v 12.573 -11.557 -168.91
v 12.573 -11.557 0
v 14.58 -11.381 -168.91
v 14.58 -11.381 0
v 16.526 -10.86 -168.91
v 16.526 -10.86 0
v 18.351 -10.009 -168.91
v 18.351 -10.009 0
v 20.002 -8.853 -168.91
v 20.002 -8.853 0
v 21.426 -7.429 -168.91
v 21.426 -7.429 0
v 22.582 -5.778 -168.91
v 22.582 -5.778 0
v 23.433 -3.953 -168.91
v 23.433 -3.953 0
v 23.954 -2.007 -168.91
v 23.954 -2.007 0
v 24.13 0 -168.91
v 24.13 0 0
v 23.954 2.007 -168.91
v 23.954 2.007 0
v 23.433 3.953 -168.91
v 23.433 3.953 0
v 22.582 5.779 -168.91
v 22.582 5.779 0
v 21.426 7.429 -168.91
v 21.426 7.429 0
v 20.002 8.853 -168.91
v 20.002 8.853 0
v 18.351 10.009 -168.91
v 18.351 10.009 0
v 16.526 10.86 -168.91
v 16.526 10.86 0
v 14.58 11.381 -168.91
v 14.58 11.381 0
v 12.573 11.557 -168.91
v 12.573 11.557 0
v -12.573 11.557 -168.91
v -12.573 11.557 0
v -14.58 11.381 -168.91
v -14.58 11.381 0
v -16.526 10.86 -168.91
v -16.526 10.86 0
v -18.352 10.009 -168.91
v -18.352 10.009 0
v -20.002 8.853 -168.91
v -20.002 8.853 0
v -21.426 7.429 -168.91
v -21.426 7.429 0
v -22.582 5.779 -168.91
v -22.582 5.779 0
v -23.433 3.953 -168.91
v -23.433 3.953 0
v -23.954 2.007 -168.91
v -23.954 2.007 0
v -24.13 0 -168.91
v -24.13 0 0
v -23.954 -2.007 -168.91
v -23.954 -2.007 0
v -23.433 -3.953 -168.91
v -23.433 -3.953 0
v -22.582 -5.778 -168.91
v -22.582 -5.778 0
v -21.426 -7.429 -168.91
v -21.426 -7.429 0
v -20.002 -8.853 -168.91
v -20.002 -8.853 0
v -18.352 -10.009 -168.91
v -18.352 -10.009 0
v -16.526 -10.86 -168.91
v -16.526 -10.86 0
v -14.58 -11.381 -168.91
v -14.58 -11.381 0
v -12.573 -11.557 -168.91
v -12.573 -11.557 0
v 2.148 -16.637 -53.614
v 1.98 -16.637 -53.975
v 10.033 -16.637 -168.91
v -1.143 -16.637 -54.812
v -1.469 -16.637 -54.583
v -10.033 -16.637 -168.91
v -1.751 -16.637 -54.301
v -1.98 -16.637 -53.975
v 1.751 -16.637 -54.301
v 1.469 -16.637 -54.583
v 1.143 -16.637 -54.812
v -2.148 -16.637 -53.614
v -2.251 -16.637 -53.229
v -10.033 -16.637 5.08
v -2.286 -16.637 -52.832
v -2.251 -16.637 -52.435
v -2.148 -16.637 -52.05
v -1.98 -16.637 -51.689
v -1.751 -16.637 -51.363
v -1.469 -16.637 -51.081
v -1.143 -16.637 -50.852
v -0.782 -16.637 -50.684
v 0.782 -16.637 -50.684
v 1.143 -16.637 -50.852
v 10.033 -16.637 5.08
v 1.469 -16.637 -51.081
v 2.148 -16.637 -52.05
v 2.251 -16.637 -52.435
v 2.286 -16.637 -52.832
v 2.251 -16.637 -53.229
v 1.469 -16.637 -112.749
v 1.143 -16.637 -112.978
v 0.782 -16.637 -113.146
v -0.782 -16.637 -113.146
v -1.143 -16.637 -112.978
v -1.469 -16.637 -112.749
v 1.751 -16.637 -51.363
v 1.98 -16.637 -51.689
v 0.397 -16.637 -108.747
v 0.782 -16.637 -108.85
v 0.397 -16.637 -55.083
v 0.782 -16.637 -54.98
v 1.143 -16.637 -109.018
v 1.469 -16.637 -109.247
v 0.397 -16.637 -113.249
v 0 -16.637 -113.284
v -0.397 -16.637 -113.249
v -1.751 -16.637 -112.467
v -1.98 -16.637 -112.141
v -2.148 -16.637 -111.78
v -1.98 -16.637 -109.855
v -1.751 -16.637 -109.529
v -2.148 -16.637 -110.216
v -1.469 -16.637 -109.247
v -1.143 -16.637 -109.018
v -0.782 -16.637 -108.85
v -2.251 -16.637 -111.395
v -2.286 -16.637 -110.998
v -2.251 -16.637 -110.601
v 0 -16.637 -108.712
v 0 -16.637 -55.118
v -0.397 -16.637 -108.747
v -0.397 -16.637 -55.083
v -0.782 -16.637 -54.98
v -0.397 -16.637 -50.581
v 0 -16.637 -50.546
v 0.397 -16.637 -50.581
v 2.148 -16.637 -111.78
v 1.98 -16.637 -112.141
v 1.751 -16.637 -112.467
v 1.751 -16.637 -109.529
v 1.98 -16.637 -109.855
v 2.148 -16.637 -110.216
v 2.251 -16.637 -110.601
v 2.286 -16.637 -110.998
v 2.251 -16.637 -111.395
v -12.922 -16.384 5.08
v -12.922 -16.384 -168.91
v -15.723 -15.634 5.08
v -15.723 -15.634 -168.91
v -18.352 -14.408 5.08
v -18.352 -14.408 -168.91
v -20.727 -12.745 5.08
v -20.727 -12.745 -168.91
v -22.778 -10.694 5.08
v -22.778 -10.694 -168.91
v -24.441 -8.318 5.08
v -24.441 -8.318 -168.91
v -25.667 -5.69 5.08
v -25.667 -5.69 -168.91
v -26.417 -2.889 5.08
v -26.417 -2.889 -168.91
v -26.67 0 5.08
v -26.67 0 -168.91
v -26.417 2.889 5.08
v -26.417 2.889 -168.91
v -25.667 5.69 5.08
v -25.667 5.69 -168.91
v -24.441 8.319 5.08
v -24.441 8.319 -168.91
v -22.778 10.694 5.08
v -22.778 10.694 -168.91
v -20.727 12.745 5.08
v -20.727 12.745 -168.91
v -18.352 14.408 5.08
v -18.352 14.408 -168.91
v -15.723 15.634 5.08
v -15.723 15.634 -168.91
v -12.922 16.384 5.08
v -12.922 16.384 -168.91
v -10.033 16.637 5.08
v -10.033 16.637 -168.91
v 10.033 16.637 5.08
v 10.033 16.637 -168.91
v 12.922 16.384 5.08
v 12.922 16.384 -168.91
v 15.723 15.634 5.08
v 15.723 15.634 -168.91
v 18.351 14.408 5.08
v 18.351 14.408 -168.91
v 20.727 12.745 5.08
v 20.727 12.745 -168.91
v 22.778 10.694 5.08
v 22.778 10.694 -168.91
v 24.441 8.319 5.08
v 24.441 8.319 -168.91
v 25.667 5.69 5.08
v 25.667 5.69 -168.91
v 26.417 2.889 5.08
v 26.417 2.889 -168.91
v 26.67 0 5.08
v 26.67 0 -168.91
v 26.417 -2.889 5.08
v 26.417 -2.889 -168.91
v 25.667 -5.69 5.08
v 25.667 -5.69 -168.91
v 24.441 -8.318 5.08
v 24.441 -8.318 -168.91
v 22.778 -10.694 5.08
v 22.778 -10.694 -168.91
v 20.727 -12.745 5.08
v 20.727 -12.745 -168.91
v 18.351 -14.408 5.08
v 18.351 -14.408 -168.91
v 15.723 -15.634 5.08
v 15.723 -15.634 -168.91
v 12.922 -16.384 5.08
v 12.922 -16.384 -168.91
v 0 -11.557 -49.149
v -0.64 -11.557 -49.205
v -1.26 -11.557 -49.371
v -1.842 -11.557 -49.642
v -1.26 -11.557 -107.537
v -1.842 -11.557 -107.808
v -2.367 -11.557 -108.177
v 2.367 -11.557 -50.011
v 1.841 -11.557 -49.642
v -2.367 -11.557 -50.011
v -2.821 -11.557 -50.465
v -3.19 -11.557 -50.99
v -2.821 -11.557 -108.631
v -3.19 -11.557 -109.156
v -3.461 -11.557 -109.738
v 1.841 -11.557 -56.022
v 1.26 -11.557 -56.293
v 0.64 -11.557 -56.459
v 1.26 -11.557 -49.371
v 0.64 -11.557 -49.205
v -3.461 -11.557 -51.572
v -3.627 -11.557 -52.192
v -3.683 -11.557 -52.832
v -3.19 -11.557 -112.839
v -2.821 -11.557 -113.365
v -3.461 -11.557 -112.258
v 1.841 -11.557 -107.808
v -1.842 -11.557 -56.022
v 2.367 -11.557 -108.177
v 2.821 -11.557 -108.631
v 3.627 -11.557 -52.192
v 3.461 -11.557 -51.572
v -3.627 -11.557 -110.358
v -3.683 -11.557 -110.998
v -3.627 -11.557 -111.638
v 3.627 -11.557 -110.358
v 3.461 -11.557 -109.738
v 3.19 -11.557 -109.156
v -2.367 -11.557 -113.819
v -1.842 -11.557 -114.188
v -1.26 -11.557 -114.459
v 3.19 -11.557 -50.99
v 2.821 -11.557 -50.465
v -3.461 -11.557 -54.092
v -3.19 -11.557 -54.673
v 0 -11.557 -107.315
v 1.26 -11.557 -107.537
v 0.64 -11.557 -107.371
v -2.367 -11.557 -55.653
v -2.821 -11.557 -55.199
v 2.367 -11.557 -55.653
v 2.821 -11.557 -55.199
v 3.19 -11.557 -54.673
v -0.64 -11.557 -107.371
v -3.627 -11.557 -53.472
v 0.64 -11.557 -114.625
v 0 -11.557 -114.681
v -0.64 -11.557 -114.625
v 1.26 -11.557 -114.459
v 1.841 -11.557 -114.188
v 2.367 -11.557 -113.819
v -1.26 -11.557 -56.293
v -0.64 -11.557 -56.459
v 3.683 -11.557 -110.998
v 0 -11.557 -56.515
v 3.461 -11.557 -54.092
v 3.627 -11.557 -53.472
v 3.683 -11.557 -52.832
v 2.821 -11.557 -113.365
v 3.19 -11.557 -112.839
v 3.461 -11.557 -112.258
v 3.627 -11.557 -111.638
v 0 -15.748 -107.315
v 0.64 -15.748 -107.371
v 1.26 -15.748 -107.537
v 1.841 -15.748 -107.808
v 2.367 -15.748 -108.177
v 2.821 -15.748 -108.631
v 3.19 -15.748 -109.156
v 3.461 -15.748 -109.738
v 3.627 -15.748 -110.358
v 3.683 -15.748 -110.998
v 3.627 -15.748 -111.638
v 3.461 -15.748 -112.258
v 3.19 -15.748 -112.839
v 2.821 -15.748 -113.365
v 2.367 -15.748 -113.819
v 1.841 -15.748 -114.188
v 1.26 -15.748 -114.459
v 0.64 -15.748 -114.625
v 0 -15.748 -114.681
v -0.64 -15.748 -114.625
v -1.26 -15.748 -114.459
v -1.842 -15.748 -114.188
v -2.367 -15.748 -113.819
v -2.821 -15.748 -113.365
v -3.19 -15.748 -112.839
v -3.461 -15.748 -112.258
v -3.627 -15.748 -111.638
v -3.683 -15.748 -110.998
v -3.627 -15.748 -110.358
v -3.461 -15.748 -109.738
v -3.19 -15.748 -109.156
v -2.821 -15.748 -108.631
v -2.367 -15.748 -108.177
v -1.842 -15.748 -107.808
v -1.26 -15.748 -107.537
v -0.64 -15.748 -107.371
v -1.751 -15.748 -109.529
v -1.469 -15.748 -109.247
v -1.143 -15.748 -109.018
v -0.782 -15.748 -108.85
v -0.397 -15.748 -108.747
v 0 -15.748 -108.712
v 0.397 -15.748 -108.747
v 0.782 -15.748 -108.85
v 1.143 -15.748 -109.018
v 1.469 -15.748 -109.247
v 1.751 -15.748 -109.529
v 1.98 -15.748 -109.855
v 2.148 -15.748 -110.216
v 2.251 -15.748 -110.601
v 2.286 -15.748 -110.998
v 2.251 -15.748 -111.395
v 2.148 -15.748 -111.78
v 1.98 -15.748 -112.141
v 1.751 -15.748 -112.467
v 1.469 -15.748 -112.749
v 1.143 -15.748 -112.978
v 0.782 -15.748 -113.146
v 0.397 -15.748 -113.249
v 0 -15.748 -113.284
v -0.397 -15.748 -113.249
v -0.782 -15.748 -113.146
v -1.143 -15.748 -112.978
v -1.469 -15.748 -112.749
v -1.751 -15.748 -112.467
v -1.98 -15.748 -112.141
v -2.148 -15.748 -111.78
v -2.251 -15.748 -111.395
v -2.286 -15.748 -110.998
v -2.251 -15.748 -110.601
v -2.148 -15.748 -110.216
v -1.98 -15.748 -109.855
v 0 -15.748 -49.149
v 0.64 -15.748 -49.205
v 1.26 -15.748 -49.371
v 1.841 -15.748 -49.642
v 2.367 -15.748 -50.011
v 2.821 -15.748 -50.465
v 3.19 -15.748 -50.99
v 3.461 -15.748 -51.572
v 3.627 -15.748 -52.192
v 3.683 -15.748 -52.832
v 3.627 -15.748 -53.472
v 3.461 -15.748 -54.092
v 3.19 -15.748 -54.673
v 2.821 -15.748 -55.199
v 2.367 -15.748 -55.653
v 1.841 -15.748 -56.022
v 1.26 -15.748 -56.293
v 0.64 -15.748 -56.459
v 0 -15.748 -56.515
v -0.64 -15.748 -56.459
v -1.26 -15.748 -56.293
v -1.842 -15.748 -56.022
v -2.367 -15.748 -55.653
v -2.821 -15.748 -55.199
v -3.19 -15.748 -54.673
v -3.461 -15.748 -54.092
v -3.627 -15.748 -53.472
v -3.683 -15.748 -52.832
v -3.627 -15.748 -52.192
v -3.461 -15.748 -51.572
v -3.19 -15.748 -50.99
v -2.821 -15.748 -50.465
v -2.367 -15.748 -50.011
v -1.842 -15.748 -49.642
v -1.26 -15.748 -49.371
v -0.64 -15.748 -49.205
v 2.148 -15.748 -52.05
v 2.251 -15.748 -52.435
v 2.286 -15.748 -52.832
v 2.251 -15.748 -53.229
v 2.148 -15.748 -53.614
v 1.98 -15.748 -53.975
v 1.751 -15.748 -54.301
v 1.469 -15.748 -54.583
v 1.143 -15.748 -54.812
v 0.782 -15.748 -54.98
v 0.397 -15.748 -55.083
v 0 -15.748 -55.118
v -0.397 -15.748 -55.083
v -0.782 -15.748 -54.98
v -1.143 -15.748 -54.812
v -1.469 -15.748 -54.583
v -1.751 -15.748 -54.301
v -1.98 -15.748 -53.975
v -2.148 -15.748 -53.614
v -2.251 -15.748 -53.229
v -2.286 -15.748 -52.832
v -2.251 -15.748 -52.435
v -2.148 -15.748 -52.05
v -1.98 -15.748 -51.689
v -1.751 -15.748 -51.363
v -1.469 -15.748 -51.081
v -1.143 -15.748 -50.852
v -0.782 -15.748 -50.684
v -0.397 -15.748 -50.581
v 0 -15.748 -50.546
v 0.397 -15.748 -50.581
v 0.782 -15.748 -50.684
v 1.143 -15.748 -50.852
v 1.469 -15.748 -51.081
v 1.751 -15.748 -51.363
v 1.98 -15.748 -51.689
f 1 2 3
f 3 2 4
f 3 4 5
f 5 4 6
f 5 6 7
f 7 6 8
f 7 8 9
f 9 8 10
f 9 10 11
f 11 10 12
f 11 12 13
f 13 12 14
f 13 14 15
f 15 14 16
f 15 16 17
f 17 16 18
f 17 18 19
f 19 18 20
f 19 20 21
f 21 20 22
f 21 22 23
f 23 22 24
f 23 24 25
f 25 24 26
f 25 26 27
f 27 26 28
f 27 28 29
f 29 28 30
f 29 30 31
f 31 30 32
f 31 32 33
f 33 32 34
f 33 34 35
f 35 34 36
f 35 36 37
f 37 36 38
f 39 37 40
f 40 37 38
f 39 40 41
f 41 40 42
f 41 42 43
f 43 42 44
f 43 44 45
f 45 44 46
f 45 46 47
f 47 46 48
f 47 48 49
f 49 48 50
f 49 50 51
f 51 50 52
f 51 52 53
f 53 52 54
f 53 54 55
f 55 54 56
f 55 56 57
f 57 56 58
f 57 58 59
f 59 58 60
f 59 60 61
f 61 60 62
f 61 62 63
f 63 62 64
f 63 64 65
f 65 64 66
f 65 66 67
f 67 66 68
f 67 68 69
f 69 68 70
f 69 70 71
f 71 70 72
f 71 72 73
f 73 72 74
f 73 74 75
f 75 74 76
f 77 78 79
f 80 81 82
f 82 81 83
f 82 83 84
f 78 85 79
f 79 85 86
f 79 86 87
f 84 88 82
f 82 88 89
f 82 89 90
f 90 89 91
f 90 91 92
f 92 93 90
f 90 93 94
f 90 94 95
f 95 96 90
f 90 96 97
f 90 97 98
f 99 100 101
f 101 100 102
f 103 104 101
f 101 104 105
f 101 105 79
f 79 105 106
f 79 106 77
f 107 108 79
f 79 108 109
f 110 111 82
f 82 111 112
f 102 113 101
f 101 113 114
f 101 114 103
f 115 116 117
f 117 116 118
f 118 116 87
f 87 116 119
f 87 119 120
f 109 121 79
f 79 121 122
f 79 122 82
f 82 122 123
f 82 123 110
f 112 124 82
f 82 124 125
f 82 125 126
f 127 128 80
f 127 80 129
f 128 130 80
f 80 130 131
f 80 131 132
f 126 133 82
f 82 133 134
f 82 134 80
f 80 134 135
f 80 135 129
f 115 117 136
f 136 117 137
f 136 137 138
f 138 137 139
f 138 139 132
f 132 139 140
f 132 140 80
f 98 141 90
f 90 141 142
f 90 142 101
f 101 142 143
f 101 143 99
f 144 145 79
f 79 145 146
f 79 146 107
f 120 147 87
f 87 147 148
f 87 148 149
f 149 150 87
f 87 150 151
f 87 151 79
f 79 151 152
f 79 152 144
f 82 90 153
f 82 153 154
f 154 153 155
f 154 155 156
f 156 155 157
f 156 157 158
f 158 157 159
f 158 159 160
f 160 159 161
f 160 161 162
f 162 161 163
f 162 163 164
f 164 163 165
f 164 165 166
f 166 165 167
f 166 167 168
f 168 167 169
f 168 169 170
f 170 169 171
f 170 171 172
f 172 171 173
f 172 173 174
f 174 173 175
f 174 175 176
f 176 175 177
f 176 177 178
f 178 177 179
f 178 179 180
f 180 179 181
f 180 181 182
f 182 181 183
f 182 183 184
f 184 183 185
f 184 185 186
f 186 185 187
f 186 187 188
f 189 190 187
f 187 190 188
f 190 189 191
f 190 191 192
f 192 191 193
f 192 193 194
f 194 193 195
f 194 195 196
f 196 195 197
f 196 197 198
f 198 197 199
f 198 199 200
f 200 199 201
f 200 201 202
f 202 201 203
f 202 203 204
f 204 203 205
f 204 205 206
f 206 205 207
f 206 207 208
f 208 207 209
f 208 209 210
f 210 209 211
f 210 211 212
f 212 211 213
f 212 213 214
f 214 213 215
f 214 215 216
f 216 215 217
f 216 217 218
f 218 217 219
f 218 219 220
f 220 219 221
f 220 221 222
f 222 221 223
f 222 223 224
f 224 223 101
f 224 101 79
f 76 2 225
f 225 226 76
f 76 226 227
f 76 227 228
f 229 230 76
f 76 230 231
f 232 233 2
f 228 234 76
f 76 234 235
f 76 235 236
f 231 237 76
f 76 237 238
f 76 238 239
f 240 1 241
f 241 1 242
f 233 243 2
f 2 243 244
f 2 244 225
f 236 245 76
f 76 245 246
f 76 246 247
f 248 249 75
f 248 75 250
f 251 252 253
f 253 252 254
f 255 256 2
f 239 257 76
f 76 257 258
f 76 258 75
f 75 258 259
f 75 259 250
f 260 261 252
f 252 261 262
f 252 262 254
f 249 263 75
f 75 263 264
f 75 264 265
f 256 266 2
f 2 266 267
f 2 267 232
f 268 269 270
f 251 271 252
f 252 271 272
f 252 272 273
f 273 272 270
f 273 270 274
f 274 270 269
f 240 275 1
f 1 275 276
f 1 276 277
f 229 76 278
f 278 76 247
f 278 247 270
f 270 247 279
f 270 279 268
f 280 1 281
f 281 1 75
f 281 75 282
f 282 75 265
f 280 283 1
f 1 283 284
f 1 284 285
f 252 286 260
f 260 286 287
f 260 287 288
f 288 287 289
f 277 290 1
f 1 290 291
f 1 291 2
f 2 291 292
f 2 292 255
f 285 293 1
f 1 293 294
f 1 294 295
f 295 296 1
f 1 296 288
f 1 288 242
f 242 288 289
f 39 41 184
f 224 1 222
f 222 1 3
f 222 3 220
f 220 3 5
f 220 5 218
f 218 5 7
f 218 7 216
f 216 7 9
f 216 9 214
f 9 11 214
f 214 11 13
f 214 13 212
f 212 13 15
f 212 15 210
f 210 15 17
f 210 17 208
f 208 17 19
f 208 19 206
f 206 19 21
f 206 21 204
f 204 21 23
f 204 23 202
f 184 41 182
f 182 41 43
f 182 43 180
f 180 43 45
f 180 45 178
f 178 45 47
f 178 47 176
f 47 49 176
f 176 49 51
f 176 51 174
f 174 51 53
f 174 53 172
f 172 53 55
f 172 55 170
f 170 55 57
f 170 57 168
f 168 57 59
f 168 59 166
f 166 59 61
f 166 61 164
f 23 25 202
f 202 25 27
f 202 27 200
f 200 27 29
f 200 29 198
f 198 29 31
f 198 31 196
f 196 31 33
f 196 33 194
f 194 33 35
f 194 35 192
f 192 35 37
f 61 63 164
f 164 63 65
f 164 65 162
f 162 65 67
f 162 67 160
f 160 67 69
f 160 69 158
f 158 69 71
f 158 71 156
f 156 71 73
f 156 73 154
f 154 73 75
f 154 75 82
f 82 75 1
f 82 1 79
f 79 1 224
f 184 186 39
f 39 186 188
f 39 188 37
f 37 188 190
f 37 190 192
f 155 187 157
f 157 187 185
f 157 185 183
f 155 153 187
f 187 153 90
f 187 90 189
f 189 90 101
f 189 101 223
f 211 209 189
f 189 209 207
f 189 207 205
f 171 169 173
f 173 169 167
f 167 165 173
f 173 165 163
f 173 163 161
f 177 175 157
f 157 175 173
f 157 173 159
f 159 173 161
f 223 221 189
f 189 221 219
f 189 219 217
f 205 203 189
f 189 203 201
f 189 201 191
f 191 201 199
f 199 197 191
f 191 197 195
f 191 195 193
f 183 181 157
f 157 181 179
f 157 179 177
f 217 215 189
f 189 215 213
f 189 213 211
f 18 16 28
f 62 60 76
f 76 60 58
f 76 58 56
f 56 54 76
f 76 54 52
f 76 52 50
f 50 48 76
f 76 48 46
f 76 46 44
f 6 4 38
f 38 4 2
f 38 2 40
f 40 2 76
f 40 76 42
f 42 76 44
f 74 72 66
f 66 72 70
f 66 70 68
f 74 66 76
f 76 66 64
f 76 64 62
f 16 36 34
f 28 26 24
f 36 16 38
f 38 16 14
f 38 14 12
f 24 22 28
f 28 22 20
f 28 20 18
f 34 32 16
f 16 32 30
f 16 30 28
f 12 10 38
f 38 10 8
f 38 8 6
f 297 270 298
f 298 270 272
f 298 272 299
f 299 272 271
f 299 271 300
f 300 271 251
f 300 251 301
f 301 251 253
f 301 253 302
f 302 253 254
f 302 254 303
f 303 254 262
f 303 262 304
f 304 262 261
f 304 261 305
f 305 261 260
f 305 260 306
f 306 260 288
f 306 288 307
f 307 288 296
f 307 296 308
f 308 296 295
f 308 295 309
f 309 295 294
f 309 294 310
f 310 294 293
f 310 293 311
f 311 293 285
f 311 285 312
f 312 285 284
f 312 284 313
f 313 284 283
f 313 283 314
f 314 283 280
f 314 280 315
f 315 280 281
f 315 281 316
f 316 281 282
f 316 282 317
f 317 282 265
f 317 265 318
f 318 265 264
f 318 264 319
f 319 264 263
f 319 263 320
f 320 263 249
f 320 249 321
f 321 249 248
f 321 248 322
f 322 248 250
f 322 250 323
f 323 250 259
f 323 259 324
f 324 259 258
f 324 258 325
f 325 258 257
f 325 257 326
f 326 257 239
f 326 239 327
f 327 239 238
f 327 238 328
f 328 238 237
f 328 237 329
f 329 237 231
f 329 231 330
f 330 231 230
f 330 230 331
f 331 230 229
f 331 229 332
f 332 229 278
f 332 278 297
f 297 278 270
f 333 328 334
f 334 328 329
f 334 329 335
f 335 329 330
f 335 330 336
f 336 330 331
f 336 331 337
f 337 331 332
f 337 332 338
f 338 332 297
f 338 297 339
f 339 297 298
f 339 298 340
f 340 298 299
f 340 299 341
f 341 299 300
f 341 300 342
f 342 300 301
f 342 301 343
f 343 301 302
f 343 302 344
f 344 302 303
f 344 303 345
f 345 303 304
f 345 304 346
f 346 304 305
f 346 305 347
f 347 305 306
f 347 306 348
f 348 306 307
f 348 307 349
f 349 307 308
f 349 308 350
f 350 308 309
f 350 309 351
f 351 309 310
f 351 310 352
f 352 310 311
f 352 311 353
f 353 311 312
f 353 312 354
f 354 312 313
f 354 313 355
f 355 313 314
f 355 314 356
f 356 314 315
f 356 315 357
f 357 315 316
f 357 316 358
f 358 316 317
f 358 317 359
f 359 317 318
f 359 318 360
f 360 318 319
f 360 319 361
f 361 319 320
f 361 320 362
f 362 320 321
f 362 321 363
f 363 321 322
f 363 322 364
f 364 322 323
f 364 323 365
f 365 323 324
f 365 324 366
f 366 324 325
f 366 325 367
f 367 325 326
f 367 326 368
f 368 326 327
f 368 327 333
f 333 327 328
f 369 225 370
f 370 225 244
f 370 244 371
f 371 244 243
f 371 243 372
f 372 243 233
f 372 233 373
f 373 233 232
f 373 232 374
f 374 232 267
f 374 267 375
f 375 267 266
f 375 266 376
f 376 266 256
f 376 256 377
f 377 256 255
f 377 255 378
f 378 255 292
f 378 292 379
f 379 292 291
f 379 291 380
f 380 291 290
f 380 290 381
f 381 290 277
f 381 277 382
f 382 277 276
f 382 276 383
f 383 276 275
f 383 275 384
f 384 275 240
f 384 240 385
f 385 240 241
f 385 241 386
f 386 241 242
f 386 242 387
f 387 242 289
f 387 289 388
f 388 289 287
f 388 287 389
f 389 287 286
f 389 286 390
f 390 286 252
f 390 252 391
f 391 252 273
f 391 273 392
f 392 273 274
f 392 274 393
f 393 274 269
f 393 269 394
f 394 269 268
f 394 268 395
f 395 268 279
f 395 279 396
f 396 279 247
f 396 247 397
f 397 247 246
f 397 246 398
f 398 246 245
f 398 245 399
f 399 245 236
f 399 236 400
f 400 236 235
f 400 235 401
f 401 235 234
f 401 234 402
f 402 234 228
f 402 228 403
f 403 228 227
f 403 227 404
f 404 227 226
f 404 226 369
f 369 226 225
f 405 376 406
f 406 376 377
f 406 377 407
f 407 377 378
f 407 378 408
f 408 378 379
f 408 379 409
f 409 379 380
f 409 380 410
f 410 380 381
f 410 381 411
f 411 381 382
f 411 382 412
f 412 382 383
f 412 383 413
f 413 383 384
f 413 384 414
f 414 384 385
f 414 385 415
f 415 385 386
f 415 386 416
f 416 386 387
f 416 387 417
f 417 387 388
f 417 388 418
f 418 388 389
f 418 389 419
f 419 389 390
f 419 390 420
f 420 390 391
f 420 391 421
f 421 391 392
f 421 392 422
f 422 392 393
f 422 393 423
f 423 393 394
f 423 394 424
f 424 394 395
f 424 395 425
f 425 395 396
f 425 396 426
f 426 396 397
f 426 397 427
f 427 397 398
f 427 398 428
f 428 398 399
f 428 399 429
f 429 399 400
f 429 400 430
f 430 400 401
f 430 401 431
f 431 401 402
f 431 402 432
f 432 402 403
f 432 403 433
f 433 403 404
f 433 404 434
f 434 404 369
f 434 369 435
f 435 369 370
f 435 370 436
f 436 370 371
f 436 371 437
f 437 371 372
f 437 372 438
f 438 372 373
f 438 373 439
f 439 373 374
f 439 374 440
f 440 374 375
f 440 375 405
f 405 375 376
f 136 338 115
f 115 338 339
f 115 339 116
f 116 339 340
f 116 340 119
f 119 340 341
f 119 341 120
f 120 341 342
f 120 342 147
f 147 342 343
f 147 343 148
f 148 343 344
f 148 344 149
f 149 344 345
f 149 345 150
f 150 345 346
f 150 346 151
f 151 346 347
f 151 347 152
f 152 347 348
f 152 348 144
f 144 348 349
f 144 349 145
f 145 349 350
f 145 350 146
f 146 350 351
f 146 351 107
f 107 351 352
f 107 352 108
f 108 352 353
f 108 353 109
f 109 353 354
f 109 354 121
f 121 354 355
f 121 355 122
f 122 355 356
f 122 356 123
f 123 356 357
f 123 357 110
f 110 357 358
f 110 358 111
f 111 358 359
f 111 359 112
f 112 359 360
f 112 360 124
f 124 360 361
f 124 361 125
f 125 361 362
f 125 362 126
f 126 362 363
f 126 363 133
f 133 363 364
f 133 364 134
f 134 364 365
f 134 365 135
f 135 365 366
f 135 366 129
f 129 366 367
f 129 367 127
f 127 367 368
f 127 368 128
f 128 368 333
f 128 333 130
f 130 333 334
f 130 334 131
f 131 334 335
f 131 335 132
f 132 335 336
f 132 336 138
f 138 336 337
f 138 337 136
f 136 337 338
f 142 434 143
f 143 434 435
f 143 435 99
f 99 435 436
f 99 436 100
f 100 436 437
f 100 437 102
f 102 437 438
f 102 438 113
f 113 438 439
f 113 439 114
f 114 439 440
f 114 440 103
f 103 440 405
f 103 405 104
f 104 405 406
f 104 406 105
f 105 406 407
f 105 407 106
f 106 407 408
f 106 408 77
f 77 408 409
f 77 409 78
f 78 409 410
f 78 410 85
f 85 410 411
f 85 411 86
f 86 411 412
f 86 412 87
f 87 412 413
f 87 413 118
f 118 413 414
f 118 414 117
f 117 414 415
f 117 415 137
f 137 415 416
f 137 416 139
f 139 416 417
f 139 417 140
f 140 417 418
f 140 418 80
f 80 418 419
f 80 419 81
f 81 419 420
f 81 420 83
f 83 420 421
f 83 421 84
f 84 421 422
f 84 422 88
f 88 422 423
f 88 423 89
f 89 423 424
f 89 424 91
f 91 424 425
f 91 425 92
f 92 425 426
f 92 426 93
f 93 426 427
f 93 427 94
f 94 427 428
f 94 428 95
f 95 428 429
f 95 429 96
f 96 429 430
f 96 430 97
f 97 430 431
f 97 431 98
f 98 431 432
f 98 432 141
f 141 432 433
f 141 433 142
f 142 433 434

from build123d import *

# Parameters (mm, degrees)
BOSS_EXTRUDE1_DEPTH = 168.91
BOSS_EXTRUDE2_DEPTH = 5.08
SKETCH5_R           = 3.683
CUT_EXTRUDE2_DEPTH  = 4.191
SKETCH6_R           = 2.286
CUT_EXTRUDE3_DEPTH  = 6.731


with BuildPart() as part:
    # Sketch1 → Boss-Extrude1 (new body)
    with BuildSketch(Plane.XY):
        with BuildLine():
            ThreePointArc((-24.13, 0), (-20.74503307, 8.17203307), (-12.573, 11.557))
            Line((-12.573, 11.557), (12.573, 11.557))
            ThreePointArc((12.573, 11.557), (20.74503307, 8.17203307), (24.13, 0))
            Line((24.13, 0), (26.67, 0))
            ThreePointArc((26.67, 0), (21.797135519, 11.764135519), (10.033, 16.637))
            Line((10.033, 16.637), (-10.033, 16.637))
            ThreePointArc((-10.033, 16.637), (-21.797135519, 11.764135519), (-26.67, 0))
            Line((-26.67, 0), (-24.13, 0))
        make_face()
        with BuildLine():
            ThreePointArc((-12.573, -11.557), (-20.74503307, -8.17203307), (-24.13, 0))
            Line((-24.13, 0), (-26.67, 0))
            ThreePointArc((-26.67, 0), (-21.797135519, -11.764135519), (-10.033, -16.637))
            Line((-10.033, -16.637), (10.033, -16.637))
            ThreePointArc((10.033, -16.637), (21.797135519, -11.764135519), (26.67, 0))
            Line((26.67, 0), (24.13, 0))
            ThreePointArc((24.13, 0), (20.74503307, -8.17203307), (12.573, -11.557))
            Line((12.573, -11.557), (-12.573, -11.557))
        make_face()
    extrude(amount=-BOSS_EXTRUDE1_DEPTH)

    # Sketch3 → Boss-Extrude2 (add)
    with BuildSketch(Plane.XY):
        with BuildLine():
            Line((-10.033, 16.637), (10.033, 16.637))
            ThreePointArc((10.033, 16.637), (26.67, 0), (10.033, -16.637))
            Line((10.033, -16.637), (-10.033, -16.637))
            ThreePointArc((-10.033, -16.637), (-26.67, 0), (-10.033, 16.637))
        make_face()
    extrude(amount=BOSS_EXTRUDE2_DEPTH)

    # Sketch5 → Cut-Extrude2 (cut)
    with BuildSketch(Plane(origin=(0, -11.557, 0), x_dir=(1, 0, 0), z_dir=(0, 1, 0))):
        with Locations((0, 110.998)):
            Circle(SKETCH5_R)
        with Locations((0, 52.832)):
            Circle(SKETCH5_R)
    extrude(amount=-CUT_EXTRUDE2_DEPTH, mode=Mode.SUBTRACT)

    # Sketch6 → Cut-Extrude3 (cut)
    with BuildSketch(Plane(origin=(0, -11.557, 0), x_dir=(1, 0, 0), z_dir=(0, 1, 0))):
        with Locations((0, 110.998)):
            Circle(SKETCH6_R)
        with Locations((0, 52.832)):
            Circle(SKETCH6_R)
    extrude(amount=-CUT_EXTRUDE3_DEPTH, mode=Mode.SUBTRACT)


solid = part.part
